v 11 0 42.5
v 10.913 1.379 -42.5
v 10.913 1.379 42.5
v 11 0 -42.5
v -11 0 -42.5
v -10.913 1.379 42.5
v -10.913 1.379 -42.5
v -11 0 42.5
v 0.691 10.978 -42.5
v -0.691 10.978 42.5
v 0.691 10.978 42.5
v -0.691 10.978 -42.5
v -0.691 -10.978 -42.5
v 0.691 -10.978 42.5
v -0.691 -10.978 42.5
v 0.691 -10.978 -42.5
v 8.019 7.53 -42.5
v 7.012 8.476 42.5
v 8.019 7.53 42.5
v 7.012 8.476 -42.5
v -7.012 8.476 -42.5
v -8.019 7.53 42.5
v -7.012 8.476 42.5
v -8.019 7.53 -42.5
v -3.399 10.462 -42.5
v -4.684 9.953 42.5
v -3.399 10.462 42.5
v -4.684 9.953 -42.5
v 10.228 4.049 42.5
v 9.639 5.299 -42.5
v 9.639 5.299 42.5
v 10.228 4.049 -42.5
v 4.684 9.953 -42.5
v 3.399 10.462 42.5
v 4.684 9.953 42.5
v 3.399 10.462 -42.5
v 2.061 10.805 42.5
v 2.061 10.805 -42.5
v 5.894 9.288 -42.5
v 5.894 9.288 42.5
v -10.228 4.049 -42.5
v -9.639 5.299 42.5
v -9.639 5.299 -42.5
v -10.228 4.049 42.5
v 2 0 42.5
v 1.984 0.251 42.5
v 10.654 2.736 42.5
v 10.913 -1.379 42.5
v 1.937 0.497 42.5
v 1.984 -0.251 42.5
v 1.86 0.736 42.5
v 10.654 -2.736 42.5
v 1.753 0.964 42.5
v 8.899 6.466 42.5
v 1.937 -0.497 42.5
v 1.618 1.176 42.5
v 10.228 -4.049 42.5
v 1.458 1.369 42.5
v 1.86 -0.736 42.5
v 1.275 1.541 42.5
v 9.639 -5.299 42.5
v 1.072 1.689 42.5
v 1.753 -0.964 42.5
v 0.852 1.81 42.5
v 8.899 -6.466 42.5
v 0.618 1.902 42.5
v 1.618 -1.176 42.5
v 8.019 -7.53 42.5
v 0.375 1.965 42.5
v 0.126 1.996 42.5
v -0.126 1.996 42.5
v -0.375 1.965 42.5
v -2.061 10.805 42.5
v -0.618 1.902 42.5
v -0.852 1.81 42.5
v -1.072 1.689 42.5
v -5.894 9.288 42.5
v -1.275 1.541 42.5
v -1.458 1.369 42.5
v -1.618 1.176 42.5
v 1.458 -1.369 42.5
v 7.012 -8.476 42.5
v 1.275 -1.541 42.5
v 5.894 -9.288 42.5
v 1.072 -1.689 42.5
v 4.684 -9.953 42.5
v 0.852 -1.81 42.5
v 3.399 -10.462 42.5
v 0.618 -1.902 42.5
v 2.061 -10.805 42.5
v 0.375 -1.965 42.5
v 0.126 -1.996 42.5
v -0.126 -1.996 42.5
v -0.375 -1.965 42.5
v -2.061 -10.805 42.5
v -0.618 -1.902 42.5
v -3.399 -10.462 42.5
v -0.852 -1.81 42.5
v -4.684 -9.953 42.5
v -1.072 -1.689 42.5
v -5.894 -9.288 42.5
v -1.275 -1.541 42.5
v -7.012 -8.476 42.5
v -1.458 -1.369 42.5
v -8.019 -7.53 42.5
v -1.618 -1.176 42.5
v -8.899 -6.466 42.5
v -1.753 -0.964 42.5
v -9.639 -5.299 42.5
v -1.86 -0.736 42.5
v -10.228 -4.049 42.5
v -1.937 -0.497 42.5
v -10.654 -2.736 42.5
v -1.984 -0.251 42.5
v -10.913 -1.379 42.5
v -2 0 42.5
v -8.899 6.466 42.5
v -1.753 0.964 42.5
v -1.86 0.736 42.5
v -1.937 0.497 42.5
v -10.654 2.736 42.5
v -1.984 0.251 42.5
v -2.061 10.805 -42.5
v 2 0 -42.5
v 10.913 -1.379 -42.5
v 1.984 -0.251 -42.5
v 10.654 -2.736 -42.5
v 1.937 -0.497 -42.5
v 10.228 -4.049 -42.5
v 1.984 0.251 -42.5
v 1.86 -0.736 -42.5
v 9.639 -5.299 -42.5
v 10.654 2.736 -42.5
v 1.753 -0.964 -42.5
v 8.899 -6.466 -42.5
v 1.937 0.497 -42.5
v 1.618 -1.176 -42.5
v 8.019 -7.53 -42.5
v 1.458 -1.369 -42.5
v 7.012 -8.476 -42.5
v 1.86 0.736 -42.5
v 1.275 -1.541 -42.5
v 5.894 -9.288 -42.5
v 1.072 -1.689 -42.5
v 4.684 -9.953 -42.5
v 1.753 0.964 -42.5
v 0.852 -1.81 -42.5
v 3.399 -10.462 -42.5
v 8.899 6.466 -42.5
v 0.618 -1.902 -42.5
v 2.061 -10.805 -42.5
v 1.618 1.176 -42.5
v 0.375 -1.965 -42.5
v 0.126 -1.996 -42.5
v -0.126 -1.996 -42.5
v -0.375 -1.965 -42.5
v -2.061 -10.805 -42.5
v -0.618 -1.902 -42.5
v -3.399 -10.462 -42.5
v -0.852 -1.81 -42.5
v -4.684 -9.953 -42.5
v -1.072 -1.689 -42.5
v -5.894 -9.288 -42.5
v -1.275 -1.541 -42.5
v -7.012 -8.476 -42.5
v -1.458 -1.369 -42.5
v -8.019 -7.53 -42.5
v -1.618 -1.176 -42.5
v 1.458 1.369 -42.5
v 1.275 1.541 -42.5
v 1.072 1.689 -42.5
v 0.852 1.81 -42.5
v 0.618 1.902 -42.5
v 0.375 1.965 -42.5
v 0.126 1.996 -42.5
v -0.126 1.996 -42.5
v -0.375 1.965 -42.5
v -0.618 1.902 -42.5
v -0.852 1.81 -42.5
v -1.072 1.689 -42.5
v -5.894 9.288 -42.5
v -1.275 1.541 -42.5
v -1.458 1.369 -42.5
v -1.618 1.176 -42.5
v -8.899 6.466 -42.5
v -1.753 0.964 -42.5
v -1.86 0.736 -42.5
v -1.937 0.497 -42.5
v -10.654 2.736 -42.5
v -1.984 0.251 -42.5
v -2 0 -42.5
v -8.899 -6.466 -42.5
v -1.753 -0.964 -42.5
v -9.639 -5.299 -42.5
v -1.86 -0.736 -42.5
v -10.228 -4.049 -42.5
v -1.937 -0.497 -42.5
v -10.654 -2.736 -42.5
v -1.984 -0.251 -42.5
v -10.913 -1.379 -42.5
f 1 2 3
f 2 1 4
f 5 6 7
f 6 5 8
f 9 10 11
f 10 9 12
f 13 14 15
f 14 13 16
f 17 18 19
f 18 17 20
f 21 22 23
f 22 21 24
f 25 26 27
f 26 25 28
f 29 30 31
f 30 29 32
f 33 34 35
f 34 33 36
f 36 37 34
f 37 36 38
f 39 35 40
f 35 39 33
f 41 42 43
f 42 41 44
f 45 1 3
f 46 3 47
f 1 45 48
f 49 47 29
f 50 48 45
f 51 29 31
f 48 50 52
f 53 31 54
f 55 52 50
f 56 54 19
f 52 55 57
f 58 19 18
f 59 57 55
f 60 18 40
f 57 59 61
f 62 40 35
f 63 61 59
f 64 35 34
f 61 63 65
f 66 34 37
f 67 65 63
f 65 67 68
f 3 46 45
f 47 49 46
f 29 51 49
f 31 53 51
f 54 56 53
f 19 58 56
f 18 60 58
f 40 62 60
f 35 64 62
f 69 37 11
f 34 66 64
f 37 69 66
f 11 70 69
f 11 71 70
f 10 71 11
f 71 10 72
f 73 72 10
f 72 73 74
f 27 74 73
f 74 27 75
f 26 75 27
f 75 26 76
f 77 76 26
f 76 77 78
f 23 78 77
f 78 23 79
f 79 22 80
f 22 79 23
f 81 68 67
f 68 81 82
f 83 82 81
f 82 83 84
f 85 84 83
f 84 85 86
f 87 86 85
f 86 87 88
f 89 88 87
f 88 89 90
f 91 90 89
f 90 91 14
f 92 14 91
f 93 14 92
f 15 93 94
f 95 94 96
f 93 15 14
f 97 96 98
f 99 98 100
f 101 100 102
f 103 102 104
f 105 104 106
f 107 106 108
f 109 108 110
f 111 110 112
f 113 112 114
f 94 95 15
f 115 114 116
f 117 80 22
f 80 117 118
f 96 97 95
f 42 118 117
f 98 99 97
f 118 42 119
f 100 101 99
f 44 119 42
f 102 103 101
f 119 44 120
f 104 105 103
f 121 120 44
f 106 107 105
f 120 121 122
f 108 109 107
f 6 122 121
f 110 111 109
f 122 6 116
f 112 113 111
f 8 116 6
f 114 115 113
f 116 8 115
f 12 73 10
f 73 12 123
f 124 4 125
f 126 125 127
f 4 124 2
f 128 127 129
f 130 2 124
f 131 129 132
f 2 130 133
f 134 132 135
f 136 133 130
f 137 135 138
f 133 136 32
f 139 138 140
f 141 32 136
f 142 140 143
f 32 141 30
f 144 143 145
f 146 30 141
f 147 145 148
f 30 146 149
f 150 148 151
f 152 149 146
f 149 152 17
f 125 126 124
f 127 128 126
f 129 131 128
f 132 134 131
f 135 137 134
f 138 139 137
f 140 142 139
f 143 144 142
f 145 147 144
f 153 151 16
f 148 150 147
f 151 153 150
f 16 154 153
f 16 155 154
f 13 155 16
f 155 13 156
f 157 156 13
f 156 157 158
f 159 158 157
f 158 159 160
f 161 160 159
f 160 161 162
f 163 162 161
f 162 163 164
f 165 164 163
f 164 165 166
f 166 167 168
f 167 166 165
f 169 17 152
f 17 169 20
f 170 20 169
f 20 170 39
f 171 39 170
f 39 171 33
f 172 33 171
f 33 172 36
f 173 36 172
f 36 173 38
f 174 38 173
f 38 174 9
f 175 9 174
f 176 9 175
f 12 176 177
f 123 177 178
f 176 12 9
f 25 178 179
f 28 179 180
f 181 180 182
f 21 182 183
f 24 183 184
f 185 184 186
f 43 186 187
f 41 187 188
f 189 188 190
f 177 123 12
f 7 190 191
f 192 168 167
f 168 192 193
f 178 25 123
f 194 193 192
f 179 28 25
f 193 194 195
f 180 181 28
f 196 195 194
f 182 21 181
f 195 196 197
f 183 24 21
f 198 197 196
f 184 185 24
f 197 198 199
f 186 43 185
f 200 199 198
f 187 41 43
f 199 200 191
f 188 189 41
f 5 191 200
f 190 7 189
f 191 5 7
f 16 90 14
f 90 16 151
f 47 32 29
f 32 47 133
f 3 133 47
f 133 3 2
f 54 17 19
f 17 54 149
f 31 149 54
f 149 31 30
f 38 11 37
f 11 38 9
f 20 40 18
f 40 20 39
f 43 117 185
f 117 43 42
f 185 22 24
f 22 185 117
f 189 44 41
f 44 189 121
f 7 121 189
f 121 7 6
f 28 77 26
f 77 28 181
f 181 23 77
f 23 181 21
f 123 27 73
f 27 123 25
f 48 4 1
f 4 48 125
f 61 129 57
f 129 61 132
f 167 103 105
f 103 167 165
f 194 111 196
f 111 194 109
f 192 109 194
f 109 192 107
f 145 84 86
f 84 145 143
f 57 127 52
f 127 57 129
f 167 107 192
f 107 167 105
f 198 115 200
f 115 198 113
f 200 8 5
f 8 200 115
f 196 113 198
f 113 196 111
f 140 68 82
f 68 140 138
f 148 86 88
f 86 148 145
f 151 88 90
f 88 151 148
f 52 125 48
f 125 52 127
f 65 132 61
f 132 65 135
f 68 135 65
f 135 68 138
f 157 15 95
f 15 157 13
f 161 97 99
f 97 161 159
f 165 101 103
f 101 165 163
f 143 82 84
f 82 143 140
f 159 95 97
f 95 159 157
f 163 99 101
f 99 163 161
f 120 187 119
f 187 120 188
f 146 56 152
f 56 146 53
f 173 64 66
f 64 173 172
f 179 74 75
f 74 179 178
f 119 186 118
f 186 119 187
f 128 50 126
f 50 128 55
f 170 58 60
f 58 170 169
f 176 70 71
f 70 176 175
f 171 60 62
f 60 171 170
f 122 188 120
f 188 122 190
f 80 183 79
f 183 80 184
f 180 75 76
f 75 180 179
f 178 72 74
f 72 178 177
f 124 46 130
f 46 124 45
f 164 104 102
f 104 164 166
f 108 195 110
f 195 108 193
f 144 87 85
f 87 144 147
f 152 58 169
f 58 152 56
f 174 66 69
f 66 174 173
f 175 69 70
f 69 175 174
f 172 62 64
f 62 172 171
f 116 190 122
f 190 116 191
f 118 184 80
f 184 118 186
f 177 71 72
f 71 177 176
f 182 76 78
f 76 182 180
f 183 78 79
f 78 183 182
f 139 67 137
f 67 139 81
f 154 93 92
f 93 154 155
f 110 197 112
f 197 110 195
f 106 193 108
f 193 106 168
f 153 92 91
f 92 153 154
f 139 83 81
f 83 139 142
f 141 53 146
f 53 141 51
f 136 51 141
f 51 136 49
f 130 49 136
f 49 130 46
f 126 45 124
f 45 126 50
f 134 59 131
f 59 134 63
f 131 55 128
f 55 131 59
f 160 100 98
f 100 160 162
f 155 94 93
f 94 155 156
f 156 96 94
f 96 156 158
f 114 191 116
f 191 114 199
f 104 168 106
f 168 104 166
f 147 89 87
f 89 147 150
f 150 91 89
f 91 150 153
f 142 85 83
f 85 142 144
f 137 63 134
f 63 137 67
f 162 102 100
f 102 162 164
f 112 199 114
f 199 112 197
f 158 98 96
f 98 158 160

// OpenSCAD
$fn = 50;


difference() {
	union() {
		translate(v = [0, 0, -42.5000000000]) {
			cylinder(h = 85, r = 11.0000000000);
		}
	}
	union() {
		translate(v = [0, 0, -100.0000000000]) {
			cylinder(h = 200, r = 2);
		}
	}
}
